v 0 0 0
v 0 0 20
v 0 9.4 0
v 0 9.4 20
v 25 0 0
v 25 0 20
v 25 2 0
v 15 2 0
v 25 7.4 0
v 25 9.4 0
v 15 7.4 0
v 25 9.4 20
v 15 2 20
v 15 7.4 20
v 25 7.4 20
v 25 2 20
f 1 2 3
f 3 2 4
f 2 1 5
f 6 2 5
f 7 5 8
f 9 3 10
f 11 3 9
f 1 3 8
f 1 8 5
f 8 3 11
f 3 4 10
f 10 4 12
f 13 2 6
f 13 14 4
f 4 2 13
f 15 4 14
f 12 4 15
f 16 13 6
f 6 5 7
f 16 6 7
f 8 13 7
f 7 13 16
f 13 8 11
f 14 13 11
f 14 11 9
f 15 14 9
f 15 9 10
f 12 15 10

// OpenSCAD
union() {
	cube([15, 9.4, 20]);
	translate([14, 7.4, 0]) cube([11, 2, 20]);
	translate([14, 0, 0]) cube([11, 2, 20]);
}
